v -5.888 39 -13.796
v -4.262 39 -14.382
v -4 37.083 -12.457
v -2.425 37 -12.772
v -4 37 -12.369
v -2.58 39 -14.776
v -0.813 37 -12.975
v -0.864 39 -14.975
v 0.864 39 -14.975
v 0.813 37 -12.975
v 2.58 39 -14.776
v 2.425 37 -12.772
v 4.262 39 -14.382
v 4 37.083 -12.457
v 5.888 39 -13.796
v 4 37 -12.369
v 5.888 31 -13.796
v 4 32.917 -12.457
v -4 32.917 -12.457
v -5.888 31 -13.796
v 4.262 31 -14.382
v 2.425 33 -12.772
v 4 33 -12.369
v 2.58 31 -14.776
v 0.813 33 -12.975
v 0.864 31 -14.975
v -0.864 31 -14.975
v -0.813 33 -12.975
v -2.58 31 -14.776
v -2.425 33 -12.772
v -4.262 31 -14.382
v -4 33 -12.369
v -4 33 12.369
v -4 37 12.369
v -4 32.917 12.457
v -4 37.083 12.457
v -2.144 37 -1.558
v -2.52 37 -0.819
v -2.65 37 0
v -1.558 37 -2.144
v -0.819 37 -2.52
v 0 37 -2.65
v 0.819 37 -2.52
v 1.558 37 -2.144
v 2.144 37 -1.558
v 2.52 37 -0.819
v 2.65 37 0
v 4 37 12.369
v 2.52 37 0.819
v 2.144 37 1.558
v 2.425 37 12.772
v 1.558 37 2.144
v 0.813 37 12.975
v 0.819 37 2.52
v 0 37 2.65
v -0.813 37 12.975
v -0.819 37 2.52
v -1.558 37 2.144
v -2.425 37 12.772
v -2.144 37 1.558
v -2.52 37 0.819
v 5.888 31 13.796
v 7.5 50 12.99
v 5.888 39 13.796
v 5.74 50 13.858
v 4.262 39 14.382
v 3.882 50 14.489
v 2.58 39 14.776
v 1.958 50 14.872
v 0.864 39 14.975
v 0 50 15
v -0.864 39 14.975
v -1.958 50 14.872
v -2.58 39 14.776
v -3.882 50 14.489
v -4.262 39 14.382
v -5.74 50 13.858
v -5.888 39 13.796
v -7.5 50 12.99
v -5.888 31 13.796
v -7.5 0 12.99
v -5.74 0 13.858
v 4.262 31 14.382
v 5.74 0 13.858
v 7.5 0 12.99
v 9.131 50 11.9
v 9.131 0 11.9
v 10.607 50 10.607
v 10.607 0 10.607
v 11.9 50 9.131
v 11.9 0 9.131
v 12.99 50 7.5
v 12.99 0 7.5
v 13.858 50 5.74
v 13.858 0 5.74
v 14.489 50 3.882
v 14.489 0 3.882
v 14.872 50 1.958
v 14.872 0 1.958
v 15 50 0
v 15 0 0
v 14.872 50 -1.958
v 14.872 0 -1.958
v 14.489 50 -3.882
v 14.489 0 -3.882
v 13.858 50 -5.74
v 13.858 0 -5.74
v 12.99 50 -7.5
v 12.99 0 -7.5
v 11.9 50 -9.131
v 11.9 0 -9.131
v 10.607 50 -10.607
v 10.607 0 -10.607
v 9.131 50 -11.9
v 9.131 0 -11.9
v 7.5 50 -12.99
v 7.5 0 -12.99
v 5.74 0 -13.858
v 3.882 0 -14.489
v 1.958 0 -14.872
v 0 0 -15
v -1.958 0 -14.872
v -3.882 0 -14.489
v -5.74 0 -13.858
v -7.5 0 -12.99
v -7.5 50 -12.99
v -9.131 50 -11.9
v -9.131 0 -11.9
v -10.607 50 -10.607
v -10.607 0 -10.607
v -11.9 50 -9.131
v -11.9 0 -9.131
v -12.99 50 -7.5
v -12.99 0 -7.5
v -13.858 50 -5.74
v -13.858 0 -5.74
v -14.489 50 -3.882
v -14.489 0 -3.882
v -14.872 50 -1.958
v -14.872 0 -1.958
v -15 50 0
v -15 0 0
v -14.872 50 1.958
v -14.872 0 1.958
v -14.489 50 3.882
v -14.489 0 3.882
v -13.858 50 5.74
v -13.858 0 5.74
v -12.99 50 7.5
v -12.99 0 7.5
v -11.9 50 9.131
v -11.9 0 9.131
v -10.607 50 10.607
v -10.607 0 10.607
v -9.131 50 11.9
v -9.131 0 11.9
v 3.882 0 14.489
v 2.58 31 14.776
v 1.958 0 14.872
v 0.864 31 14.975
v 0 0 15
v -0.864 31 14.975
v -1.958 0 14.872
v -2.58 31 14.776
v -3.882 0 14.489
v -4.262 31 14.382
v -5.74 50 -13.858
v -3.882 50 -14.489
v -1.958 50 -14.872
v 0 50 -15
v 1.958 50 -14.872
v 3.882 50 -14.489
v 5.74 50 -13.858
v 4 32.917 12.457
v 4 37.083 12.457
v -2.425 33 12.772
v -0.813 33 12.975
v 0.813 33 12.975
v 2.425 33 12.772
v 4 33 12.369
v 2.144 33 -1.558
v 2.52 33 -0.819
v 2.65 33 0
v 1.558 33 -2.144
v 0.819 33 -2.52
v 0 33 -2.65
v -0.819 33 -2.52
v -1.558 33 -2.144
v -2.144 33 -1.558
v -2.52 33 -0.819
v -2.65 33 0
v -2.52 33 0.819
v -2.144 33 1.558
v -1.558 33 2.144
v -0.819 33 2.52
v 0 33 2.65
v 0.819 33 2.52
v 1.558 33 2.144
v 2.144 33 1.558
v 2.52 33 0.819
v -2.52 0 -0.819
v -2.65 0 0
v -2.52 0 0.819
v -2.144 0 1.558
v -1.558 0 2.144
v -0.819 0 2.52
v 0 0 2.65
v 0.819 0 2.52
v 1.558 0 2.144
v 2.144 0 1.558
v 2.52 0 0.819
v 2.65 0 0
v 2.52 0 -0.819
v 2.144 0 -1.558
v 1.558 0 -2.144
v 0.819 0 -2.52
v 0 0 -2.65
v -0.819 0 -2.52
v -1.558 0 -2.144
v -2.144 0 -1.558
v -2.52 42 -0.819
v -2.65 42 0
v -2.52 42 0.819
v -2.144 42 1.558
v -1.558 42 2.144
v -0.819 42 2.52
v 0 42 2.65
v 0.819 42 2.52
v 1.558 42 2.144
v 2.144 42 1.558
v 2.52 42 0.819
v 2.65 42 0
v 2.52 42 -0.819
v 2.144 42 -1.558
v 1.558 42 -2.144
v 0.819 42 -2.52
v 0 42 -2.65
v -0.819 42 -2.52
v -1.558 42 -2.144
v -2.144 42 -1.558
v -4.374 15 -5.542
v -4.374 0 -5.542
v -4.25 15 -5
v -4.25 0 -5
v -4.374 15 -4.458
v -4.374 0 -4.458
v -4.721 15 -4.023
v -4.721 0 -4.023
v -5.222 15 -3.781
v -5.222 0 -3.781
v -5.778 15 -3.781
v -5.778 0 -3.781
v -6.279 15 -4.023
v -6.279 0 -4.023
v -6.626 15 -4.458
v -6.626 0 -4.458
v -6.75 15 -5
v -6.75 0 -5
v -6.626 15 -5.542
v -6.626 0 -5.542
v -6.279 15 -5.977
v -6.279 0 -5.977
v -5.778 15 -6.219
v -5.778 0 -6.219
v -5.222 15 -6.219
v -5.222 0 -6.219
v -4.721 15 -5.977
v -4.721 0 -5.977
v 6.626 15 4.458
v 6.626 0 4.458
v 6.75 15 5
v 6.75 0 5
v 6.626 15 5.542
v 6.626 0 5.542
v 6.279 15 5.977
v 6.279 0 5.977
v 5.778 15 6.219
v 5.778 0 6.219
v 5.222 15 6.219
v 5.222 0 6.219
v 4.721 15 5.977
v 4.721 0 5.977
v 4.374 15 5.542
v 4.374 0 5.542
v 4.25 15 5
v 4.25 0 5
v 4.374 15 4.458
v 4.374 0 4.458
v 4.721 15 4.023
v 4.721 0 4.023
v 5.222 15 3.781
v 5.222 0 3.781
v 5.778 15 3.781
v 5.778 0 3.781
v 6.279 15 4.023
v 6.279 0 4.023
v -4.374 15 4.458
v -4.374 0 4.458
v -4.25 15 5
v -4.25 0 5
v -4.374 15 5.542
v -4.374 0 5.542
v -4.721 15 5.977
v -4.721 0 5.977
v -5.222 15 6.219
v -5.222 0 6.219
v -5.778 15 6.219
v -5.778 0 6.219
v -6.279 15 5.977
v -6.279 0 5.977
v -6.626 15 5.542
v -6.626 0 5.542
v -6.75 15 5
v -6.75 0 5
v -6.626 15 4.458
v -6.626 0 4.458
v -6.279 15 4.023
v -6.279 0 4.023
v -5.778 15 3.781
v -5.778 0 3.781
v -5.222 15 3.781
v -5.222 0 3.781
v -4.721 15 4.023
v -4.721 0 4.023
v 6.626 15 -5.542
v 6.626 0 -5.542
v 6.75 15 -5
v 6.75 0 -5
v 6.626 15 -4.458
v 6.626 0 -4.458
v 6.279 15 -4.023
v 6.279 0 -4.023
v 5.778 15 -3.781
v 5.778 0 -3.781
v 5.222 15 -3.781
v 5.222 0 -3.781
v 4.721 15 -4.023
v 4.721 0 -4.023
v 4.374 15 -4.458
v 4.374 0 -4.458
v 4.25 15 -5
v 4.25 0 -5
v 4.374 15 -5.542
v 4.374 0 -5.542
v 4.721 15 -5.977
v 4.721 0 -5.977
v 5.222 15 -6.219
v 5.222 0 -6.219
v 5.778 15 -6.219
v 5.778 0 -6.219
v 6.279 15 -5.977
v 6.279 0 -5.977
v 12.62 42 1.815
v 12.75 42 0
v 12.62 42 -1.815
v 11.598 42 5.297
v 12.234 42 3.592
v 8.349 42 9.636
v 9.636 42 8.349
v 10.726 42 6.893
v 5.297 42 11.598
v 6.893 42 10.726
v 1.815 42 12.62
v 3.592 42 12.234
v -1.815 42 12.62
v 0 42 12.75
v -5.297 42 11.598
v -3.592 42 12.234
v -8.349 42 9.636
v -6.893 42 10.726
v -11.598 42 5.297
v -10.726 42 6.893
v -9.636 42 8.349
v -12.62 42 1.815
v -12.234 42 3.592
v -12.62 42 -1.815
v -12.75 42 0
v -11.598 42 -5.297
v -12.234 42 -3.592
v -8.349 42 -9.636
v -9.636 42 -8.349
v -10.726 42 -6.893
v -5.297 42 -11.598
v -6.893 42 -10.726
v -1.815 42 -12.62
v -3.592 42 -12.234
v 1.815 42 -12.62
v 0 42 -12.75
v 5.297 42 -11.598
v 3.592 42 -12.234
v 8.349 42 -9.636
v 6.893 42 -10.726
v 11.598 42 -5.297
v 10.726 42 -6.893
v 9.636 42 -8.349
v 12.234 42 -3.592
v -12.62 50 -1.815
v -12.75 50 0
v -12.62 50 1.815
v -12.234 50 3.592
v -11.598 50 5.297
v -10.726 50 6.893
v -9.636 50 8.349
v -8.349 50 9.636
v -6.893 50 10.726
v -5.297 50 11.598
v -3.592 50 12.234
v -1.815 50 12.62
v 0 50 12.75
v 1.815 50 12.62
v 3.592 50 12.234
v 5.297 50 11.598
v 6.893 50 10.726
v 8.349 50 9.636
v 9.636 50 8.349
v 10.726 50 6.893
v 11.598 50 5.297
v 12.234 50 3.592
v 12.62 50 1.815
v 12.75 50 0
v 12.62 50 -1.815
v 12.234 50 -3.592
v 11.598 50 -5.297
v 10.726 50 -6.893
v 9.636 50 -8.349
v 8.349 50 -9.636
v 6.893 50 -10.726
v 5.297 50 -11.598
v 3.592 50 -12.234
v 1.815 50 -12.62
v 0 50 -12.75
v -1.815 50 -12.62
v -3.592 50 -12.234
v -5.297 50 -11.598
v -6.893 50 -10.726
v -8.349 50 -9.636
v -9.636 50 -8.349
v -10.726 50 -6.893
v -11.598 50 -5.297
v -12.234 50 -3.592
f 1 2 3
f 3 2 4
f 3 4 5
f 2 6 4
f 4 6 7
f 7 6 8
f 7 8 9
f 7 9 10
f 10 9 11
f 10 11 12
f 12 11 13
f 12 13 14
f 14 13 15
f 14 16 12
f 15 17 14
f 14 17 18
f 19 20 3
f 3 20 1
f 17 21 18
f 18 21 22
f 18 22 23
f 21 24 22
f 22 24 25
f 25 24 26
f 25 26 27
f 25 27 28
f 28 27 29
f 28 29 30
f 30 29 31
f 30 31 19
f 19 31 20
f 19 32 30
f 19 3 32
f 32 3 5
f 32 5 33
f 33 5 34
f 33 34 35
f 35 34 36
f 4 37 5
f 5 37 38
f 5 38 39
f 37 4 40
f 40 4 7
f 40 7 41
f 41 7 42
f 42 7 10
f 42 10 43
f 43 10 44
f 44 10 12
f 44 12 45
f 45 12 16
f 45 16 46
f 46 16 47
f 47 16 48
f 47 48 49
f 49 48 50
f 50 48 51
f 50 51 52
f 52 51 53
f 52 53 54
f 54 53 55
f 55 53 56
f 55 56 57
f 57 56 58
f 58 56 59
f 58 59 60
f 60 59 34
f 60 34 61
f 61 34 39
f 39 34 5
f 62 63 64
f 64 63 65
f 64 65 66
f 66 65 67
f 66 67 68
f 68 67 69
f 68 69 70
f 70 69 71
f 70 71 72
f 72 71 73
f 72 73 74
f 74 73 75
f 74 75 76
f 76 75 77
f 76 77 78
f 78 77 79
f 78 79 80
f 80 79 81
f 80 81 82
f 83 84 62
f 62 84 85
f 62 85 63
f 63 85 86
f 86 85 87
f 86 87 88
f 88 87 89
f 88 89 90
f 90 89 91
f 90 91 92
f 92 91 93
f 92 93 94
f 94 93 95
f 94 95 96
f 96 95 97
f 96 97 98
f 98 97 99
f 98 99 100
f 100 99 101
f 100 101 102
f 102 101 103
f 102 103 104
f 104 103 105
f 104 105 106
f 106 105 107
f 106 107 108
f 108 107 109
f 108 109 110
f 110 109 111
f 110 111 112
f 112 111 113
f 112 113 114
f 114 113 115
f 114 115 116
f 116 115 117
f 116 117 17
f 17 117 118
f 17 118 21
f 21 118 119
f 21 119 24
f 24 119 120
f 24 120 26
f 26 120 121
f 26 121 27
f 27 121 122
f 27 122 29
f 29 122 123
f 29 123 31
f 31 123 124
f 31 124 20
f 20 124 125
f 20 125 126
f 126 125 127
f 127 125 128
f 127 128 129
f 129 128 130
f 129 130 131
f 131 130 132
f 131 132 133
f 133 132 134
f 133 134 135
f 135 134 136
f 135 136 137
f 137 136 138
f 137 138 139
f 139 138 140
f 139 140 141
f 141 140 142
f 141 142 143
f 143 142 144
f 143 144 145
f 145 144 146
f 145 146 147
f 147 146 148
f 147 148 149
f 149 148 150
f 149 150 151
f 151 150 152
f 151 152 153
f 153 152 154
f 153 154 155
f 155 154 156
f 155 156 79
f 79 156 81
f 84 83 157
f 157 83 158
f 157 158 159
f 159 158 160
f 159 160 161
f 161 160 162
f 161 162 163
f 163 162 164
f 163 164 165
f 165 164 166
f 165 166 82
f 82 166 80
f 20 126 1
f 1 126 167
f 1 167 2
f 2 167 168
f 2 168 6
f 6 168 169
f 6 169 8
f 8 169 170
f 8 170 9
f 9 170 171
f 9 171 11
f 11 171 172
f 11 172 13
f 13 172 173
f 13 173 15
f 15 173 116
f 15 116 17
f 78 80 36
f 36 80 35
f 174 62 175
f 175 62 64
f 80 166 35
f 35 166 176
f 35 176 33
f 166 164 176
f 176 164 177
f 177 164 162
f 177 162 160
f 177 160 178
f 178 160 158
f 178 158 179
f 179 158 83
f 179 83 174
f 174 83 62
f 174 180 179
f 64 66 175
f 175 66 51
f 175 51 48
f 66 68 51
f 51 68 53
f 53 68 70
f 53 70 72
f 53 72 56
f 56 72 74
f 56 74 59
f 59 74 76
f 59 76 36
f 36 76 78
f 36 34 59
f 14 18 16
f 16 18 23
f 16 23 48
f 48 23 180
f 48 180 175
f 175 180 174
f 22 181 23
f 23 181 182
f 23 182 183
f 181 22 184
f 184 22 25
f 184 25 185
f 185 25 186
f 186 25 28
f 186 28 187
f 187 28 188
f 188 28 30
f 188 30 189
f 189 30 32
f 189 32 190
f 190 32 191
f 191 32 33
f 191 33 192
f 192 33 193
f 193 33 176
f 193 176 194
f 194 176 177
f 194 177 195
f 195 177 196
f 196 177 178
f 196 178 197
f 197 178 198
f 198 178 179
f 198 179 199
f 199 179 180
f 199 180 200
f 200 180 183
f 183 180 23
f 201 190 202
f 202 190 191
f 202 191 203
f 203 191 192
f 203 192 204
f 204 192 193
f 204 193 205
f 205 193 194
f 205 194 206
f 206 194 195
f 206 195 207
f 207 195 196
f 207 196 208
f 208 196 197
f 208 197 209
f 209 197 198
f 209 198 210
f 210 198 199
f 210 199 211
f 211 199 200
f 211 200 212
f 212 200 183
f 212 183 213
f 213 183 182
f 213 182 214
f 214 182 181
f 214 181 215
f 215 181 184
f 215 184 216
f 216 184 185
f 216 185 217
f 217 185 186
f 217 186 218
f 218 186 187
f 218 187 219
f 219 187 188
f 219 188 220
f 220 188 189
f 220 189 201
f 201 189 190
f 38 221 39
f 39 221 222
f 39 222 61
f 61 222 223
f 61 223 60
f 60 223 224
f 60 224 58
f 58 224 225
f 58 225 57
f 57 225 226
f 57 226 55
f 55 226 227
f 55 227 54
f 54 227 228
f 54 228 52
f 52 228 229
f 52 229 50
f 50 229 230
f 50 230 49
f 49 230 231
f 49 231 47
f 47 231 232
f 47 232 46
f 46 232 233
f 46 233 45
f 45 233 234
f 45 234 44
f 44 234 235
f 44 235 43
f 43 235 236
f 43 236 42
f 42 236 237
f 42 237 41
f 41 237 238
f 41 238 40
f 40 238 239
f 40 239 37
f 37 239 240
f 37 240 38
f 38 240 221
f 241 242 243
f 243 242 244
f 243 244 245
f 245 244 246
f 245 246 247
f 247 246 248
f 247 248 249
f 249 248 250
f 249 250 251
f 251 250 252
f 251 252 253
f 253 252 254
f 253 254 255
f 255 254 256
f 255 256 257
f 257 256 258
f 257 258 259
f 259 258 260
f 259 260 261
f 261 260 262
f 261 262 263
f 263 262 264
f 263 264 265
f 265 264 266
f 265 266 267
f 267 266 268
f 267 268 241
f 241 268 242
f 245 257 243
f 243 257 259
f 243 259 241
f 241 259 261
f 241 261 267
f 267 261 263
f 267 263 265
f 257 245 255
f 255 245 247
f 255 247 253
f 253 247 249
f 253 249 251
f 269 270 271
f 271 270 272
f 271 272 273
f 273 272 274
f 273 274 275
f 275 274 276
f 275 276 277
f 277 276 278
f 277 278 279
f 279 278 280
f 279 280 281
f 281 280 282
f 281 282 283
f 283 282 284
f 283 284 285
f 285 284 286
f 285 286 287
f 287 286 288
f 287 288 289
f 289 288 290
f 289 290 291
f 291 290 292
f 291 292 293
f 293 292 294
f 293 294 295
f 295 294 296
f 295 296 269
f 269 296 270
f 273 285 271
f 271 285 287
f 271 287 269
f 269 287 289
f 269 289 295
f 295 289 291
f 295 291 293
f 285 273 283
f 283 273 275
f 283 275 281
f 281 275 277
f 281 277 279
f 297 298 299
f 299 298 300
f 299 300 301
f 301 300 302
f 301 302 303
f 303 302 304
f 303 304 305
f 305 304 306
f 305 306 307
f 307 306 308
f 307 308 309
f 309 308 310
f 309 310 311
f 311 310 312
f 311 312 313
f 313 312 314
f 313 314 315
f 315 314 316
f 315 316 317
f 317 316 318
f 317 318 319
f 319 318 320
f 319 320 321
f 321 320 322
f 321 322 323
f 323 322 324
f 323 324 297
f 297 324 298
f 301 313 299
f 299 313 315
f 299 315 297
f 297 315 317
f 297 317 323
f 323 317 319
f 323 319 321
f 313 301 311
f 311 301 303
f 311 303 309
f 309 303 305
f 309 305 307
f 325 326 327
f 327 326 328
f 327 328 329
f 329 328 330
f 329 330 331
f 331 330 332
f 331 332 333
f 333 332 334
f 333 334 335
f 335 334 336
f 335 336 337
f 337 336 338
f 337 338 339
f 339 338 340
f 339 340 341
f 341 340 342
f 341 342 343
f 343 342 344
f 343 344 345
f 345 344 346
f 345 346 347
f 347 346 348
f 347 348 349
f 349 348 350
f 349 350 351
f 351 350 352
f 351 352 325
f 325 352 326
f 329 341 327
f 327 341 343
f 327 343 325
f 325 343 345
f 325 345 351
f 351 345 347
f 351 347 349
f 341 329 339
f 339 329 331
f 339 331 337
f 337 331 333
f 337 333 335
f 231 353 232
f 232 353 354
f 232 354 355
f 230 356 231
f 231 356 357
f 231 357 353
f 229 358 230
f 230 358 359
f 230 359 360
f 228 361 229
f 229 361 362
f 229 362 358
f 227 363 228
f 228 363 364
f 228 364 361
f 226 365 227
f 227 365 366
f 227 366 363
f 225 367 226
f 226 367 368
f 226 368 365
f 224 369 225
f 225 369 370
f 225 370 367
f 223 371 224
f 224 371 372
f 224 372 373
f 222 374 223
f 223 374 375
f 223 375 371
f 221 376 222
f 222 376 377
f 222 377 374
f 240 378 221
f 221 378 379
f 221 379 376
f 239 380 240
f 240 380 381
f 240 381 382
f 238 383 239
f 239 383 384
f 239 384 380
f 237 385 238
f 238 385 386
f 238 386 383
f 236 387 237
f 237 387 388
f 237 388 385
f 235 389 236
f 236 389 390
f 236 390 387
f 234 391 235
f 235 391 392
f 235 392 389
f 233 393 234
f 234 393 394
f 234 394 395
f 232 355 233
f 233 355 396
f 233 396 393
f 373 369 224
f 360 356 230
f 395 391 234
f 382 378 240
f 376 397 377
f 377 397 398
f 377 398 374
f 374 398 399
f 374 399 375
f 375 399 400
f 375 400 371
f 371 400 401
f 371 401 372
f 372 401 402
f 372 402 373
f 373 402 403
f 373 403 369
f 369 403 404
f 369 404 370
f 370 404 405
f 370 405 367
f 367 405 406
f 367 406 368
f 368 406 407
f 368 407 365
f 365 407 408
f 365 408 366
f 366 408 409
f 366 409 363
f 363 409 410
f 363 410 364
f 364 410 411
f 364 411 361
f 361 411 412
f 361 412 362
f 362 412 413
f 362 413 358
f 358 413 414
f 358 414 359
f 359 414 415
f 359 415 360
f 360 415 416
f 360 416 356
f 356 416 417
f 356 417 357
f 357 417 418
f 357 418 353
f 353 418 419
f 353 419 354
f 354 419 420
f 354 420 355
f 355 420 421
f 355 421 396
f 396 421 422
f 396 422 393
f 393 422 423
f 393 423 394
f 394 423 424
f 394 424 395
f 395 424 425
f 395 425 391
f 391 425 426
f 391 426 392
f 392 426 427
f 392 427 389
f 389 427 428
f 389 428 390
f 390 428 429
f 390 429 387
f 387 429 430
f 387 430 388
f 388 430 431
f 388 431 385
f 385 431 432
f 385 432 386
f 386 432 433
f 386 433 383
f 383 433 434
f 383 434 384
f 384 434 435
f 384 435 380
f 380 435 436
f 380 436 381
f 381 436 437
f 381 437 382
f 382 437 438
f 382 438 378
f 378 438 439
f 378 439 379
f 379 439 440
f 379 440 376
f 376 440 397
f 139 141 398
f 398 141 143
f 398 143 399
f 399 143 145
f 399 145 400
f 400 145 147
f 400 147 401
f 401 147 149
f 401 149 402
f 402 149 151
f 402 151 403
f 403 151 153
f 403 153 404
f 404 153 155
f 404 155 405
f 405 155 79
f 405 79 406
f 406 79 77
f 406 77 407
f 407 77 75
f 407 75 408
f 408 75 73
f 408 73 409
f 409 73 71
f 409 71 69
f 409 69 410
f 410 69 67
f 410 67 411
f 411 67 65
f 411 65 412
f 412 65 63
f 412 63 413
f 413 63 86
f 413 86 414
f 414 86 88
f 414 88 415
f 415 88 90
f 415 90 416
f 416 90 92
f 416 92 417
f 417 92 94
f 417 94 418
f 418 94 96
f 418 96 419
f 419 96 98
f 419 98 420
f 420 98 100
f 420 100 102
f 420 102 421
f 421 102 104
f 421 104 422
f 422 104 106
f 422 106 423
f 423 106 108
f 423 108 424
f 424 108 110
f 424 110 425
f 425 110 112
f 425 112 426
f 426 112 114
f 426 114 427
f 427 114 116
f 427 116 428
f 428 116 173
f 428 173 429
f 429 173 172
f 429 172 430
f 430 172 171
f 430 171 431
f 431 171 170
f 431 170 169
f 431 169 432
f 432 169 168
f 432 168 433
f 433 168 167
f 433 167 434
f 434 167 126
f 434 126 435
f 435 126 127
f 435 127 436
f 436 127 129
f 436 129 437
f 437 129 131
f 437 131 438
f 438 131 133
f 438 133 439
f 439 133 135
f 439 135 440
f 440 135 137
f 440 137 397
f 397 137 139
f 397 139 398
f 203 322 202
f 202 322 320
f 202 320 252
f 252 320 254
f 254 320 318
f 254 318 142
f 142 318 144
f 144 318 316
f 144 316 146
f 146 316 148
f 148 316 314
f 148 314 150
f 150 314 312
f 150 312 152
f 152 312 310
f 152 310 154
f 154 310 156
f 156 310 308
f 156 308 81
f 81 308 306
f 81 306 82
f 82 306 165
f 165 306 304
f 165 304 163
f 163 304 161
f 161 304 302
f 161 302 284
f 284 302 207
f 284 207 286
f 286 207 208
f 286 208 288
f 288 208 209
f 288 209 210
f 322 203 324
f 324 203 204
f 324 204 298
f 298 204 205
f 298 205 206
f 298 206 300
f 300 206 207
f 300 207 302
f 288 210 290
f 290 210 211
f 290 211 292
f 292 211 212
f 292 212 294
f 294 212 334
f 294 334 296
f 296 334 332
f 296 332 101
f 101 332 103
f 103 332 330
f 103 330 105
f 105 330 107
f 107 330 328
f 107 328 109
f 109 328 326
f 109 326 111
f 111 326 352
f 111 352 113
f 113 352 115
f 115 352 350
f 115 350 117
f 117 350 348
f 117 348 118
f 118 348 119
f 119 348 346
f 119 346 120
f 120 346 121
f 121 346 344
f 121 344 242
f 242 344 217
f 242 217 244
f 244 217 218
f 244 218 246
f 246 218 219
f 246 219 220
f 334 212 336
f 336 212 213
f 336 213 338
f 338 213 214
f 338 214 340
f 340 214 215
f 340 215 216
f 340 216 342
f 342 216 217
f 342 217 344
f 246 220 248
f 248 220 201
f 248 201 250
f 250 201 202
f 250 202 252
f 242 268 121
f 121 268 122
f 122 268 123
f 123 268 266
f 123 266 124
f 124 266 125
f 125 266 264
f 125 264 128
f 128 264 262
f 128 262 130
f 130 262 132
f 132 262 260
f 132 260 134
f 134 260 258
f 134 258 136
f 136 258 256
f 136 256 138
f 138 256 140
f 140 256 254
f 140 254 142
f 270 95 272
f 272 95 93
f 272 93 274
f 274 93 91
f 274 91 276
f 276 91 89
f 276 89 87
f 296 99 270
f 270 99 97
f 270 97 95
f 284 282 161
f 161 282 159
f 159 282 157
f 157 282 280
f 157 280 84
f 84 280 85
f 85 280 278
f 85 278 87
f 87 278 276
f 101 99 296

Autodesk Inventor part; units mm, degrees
ref_plane "YZ Plane" through (0, 0, 0) normal (1, 0, 0) x (0, 1, 0)
ref_plane "XZ Plane" through (0, 0, 0) normal (0, 1, 0) x (-1, 0, 0)
ref_plane "XY Plane" through (0, 0, 0) normal (0, 0, 1) x (1, 0, 0)
sketch "Эскиз1" plane through (0, 0, 0) normal (0, 1, 0) x (-1, 0, 0)
  circle A0 centre (0, 0) radius 15
  circle A1 centre (0, 0) radius 12.75
  dimension "d0" = 30
  dimension "d1" = 25.5
extrude "Выдавливание1" add sketch "Эскиз1" along normal blind 50
sketch "Эскиз2" plane through (0, 0, 0) normal (0, -1, 0) x (1, 0, 0)
  circle A0 centre (0, 0) radius 15 projected
extrude "Выдавливание2" add sketch "Эскиз2" against normal blind 42
sketch "Эскиз3" plane through (0, 0, 0) normal (0, -1, 0) x (1, 0, 0)
  circle A0 centre (-5.5, -5) radius 1.25
  circle A1 centre (5.5, -5) radius 1.25
  circle A2 centre (-5.5, 5) radius 1.25
  circle A3 centre (5.5, 5) radius 1.25
  line L0 (5.5, 5) -> (-5.5, 5)
  line L1 (-5.5, 5) -> (-5.5, -5)
  line L2 (-5.5, -5) -> (5.5, -5)
  line L3 (5.5, -5) -> (5.5, 5)
  line L4 (5.5, -5) -> (-5.5, 5) construction
  point P0 (0, 0)
  point P1 (0, 0)
  dimension "d6" = 2.5
  dimension "d7" = 2.5
  dimension "d8" = 2.5
  dimension "d9" = 2.5
extrude "Выдавливание3" cut sketch "Эскиз3" against normal blind 15 contours L2 L1 A0 | A0 L1 L2 | L2 L3 A1 | A1 L3 L2 | L1 L0 A2 | A2 L0 L1 | L3 L0 A3 | A3 L0 L3
sketch "Эскиз4" plane through (0, 42, 0) normal (0, 1, 0) x (1, 0, 0)
  circle A0 centre (0, 0) radius 2.65
  dimension "d12" = 5.3
extrude "Выдавливание4" cut sketch "Эскиз4" against normal through all
sketch "Эскиз5" plane through (0, 0, 0) normal (0, 0, 1) x (1, 0, 0)
  line L0 (-4, 37) -> (4, 37)
  line L1 (4, 37) -> (4, 33)
  line L2 (4, 33) -> (-4, 33)
  line L3 (-4, 33) -> (-4, 37)
  line L4 (-4, 37) -> (4, 33) construction
  line L5 (4, 37) -> (-4, 33) construction
  point P0 (0, 0)
  point P1 (0, 35)
  dimension "d15" = 4
  dimension "d16" = 8
extrude "Выдавливание5" cut sketch "Эскиз5" along normal through all both and the other way through all
chamfer "Фаска1" distance 2 angle 45 8 edges at (0, 33, 15) (0, 33, -15) (-4, 35, 14.4568) (-4, 35, -14.4568) (0, 37, 15) (0, 37, -15) (4, 35, 14.4568) (4, 35, -14.4568)
properties part number "магнит_стойка"
